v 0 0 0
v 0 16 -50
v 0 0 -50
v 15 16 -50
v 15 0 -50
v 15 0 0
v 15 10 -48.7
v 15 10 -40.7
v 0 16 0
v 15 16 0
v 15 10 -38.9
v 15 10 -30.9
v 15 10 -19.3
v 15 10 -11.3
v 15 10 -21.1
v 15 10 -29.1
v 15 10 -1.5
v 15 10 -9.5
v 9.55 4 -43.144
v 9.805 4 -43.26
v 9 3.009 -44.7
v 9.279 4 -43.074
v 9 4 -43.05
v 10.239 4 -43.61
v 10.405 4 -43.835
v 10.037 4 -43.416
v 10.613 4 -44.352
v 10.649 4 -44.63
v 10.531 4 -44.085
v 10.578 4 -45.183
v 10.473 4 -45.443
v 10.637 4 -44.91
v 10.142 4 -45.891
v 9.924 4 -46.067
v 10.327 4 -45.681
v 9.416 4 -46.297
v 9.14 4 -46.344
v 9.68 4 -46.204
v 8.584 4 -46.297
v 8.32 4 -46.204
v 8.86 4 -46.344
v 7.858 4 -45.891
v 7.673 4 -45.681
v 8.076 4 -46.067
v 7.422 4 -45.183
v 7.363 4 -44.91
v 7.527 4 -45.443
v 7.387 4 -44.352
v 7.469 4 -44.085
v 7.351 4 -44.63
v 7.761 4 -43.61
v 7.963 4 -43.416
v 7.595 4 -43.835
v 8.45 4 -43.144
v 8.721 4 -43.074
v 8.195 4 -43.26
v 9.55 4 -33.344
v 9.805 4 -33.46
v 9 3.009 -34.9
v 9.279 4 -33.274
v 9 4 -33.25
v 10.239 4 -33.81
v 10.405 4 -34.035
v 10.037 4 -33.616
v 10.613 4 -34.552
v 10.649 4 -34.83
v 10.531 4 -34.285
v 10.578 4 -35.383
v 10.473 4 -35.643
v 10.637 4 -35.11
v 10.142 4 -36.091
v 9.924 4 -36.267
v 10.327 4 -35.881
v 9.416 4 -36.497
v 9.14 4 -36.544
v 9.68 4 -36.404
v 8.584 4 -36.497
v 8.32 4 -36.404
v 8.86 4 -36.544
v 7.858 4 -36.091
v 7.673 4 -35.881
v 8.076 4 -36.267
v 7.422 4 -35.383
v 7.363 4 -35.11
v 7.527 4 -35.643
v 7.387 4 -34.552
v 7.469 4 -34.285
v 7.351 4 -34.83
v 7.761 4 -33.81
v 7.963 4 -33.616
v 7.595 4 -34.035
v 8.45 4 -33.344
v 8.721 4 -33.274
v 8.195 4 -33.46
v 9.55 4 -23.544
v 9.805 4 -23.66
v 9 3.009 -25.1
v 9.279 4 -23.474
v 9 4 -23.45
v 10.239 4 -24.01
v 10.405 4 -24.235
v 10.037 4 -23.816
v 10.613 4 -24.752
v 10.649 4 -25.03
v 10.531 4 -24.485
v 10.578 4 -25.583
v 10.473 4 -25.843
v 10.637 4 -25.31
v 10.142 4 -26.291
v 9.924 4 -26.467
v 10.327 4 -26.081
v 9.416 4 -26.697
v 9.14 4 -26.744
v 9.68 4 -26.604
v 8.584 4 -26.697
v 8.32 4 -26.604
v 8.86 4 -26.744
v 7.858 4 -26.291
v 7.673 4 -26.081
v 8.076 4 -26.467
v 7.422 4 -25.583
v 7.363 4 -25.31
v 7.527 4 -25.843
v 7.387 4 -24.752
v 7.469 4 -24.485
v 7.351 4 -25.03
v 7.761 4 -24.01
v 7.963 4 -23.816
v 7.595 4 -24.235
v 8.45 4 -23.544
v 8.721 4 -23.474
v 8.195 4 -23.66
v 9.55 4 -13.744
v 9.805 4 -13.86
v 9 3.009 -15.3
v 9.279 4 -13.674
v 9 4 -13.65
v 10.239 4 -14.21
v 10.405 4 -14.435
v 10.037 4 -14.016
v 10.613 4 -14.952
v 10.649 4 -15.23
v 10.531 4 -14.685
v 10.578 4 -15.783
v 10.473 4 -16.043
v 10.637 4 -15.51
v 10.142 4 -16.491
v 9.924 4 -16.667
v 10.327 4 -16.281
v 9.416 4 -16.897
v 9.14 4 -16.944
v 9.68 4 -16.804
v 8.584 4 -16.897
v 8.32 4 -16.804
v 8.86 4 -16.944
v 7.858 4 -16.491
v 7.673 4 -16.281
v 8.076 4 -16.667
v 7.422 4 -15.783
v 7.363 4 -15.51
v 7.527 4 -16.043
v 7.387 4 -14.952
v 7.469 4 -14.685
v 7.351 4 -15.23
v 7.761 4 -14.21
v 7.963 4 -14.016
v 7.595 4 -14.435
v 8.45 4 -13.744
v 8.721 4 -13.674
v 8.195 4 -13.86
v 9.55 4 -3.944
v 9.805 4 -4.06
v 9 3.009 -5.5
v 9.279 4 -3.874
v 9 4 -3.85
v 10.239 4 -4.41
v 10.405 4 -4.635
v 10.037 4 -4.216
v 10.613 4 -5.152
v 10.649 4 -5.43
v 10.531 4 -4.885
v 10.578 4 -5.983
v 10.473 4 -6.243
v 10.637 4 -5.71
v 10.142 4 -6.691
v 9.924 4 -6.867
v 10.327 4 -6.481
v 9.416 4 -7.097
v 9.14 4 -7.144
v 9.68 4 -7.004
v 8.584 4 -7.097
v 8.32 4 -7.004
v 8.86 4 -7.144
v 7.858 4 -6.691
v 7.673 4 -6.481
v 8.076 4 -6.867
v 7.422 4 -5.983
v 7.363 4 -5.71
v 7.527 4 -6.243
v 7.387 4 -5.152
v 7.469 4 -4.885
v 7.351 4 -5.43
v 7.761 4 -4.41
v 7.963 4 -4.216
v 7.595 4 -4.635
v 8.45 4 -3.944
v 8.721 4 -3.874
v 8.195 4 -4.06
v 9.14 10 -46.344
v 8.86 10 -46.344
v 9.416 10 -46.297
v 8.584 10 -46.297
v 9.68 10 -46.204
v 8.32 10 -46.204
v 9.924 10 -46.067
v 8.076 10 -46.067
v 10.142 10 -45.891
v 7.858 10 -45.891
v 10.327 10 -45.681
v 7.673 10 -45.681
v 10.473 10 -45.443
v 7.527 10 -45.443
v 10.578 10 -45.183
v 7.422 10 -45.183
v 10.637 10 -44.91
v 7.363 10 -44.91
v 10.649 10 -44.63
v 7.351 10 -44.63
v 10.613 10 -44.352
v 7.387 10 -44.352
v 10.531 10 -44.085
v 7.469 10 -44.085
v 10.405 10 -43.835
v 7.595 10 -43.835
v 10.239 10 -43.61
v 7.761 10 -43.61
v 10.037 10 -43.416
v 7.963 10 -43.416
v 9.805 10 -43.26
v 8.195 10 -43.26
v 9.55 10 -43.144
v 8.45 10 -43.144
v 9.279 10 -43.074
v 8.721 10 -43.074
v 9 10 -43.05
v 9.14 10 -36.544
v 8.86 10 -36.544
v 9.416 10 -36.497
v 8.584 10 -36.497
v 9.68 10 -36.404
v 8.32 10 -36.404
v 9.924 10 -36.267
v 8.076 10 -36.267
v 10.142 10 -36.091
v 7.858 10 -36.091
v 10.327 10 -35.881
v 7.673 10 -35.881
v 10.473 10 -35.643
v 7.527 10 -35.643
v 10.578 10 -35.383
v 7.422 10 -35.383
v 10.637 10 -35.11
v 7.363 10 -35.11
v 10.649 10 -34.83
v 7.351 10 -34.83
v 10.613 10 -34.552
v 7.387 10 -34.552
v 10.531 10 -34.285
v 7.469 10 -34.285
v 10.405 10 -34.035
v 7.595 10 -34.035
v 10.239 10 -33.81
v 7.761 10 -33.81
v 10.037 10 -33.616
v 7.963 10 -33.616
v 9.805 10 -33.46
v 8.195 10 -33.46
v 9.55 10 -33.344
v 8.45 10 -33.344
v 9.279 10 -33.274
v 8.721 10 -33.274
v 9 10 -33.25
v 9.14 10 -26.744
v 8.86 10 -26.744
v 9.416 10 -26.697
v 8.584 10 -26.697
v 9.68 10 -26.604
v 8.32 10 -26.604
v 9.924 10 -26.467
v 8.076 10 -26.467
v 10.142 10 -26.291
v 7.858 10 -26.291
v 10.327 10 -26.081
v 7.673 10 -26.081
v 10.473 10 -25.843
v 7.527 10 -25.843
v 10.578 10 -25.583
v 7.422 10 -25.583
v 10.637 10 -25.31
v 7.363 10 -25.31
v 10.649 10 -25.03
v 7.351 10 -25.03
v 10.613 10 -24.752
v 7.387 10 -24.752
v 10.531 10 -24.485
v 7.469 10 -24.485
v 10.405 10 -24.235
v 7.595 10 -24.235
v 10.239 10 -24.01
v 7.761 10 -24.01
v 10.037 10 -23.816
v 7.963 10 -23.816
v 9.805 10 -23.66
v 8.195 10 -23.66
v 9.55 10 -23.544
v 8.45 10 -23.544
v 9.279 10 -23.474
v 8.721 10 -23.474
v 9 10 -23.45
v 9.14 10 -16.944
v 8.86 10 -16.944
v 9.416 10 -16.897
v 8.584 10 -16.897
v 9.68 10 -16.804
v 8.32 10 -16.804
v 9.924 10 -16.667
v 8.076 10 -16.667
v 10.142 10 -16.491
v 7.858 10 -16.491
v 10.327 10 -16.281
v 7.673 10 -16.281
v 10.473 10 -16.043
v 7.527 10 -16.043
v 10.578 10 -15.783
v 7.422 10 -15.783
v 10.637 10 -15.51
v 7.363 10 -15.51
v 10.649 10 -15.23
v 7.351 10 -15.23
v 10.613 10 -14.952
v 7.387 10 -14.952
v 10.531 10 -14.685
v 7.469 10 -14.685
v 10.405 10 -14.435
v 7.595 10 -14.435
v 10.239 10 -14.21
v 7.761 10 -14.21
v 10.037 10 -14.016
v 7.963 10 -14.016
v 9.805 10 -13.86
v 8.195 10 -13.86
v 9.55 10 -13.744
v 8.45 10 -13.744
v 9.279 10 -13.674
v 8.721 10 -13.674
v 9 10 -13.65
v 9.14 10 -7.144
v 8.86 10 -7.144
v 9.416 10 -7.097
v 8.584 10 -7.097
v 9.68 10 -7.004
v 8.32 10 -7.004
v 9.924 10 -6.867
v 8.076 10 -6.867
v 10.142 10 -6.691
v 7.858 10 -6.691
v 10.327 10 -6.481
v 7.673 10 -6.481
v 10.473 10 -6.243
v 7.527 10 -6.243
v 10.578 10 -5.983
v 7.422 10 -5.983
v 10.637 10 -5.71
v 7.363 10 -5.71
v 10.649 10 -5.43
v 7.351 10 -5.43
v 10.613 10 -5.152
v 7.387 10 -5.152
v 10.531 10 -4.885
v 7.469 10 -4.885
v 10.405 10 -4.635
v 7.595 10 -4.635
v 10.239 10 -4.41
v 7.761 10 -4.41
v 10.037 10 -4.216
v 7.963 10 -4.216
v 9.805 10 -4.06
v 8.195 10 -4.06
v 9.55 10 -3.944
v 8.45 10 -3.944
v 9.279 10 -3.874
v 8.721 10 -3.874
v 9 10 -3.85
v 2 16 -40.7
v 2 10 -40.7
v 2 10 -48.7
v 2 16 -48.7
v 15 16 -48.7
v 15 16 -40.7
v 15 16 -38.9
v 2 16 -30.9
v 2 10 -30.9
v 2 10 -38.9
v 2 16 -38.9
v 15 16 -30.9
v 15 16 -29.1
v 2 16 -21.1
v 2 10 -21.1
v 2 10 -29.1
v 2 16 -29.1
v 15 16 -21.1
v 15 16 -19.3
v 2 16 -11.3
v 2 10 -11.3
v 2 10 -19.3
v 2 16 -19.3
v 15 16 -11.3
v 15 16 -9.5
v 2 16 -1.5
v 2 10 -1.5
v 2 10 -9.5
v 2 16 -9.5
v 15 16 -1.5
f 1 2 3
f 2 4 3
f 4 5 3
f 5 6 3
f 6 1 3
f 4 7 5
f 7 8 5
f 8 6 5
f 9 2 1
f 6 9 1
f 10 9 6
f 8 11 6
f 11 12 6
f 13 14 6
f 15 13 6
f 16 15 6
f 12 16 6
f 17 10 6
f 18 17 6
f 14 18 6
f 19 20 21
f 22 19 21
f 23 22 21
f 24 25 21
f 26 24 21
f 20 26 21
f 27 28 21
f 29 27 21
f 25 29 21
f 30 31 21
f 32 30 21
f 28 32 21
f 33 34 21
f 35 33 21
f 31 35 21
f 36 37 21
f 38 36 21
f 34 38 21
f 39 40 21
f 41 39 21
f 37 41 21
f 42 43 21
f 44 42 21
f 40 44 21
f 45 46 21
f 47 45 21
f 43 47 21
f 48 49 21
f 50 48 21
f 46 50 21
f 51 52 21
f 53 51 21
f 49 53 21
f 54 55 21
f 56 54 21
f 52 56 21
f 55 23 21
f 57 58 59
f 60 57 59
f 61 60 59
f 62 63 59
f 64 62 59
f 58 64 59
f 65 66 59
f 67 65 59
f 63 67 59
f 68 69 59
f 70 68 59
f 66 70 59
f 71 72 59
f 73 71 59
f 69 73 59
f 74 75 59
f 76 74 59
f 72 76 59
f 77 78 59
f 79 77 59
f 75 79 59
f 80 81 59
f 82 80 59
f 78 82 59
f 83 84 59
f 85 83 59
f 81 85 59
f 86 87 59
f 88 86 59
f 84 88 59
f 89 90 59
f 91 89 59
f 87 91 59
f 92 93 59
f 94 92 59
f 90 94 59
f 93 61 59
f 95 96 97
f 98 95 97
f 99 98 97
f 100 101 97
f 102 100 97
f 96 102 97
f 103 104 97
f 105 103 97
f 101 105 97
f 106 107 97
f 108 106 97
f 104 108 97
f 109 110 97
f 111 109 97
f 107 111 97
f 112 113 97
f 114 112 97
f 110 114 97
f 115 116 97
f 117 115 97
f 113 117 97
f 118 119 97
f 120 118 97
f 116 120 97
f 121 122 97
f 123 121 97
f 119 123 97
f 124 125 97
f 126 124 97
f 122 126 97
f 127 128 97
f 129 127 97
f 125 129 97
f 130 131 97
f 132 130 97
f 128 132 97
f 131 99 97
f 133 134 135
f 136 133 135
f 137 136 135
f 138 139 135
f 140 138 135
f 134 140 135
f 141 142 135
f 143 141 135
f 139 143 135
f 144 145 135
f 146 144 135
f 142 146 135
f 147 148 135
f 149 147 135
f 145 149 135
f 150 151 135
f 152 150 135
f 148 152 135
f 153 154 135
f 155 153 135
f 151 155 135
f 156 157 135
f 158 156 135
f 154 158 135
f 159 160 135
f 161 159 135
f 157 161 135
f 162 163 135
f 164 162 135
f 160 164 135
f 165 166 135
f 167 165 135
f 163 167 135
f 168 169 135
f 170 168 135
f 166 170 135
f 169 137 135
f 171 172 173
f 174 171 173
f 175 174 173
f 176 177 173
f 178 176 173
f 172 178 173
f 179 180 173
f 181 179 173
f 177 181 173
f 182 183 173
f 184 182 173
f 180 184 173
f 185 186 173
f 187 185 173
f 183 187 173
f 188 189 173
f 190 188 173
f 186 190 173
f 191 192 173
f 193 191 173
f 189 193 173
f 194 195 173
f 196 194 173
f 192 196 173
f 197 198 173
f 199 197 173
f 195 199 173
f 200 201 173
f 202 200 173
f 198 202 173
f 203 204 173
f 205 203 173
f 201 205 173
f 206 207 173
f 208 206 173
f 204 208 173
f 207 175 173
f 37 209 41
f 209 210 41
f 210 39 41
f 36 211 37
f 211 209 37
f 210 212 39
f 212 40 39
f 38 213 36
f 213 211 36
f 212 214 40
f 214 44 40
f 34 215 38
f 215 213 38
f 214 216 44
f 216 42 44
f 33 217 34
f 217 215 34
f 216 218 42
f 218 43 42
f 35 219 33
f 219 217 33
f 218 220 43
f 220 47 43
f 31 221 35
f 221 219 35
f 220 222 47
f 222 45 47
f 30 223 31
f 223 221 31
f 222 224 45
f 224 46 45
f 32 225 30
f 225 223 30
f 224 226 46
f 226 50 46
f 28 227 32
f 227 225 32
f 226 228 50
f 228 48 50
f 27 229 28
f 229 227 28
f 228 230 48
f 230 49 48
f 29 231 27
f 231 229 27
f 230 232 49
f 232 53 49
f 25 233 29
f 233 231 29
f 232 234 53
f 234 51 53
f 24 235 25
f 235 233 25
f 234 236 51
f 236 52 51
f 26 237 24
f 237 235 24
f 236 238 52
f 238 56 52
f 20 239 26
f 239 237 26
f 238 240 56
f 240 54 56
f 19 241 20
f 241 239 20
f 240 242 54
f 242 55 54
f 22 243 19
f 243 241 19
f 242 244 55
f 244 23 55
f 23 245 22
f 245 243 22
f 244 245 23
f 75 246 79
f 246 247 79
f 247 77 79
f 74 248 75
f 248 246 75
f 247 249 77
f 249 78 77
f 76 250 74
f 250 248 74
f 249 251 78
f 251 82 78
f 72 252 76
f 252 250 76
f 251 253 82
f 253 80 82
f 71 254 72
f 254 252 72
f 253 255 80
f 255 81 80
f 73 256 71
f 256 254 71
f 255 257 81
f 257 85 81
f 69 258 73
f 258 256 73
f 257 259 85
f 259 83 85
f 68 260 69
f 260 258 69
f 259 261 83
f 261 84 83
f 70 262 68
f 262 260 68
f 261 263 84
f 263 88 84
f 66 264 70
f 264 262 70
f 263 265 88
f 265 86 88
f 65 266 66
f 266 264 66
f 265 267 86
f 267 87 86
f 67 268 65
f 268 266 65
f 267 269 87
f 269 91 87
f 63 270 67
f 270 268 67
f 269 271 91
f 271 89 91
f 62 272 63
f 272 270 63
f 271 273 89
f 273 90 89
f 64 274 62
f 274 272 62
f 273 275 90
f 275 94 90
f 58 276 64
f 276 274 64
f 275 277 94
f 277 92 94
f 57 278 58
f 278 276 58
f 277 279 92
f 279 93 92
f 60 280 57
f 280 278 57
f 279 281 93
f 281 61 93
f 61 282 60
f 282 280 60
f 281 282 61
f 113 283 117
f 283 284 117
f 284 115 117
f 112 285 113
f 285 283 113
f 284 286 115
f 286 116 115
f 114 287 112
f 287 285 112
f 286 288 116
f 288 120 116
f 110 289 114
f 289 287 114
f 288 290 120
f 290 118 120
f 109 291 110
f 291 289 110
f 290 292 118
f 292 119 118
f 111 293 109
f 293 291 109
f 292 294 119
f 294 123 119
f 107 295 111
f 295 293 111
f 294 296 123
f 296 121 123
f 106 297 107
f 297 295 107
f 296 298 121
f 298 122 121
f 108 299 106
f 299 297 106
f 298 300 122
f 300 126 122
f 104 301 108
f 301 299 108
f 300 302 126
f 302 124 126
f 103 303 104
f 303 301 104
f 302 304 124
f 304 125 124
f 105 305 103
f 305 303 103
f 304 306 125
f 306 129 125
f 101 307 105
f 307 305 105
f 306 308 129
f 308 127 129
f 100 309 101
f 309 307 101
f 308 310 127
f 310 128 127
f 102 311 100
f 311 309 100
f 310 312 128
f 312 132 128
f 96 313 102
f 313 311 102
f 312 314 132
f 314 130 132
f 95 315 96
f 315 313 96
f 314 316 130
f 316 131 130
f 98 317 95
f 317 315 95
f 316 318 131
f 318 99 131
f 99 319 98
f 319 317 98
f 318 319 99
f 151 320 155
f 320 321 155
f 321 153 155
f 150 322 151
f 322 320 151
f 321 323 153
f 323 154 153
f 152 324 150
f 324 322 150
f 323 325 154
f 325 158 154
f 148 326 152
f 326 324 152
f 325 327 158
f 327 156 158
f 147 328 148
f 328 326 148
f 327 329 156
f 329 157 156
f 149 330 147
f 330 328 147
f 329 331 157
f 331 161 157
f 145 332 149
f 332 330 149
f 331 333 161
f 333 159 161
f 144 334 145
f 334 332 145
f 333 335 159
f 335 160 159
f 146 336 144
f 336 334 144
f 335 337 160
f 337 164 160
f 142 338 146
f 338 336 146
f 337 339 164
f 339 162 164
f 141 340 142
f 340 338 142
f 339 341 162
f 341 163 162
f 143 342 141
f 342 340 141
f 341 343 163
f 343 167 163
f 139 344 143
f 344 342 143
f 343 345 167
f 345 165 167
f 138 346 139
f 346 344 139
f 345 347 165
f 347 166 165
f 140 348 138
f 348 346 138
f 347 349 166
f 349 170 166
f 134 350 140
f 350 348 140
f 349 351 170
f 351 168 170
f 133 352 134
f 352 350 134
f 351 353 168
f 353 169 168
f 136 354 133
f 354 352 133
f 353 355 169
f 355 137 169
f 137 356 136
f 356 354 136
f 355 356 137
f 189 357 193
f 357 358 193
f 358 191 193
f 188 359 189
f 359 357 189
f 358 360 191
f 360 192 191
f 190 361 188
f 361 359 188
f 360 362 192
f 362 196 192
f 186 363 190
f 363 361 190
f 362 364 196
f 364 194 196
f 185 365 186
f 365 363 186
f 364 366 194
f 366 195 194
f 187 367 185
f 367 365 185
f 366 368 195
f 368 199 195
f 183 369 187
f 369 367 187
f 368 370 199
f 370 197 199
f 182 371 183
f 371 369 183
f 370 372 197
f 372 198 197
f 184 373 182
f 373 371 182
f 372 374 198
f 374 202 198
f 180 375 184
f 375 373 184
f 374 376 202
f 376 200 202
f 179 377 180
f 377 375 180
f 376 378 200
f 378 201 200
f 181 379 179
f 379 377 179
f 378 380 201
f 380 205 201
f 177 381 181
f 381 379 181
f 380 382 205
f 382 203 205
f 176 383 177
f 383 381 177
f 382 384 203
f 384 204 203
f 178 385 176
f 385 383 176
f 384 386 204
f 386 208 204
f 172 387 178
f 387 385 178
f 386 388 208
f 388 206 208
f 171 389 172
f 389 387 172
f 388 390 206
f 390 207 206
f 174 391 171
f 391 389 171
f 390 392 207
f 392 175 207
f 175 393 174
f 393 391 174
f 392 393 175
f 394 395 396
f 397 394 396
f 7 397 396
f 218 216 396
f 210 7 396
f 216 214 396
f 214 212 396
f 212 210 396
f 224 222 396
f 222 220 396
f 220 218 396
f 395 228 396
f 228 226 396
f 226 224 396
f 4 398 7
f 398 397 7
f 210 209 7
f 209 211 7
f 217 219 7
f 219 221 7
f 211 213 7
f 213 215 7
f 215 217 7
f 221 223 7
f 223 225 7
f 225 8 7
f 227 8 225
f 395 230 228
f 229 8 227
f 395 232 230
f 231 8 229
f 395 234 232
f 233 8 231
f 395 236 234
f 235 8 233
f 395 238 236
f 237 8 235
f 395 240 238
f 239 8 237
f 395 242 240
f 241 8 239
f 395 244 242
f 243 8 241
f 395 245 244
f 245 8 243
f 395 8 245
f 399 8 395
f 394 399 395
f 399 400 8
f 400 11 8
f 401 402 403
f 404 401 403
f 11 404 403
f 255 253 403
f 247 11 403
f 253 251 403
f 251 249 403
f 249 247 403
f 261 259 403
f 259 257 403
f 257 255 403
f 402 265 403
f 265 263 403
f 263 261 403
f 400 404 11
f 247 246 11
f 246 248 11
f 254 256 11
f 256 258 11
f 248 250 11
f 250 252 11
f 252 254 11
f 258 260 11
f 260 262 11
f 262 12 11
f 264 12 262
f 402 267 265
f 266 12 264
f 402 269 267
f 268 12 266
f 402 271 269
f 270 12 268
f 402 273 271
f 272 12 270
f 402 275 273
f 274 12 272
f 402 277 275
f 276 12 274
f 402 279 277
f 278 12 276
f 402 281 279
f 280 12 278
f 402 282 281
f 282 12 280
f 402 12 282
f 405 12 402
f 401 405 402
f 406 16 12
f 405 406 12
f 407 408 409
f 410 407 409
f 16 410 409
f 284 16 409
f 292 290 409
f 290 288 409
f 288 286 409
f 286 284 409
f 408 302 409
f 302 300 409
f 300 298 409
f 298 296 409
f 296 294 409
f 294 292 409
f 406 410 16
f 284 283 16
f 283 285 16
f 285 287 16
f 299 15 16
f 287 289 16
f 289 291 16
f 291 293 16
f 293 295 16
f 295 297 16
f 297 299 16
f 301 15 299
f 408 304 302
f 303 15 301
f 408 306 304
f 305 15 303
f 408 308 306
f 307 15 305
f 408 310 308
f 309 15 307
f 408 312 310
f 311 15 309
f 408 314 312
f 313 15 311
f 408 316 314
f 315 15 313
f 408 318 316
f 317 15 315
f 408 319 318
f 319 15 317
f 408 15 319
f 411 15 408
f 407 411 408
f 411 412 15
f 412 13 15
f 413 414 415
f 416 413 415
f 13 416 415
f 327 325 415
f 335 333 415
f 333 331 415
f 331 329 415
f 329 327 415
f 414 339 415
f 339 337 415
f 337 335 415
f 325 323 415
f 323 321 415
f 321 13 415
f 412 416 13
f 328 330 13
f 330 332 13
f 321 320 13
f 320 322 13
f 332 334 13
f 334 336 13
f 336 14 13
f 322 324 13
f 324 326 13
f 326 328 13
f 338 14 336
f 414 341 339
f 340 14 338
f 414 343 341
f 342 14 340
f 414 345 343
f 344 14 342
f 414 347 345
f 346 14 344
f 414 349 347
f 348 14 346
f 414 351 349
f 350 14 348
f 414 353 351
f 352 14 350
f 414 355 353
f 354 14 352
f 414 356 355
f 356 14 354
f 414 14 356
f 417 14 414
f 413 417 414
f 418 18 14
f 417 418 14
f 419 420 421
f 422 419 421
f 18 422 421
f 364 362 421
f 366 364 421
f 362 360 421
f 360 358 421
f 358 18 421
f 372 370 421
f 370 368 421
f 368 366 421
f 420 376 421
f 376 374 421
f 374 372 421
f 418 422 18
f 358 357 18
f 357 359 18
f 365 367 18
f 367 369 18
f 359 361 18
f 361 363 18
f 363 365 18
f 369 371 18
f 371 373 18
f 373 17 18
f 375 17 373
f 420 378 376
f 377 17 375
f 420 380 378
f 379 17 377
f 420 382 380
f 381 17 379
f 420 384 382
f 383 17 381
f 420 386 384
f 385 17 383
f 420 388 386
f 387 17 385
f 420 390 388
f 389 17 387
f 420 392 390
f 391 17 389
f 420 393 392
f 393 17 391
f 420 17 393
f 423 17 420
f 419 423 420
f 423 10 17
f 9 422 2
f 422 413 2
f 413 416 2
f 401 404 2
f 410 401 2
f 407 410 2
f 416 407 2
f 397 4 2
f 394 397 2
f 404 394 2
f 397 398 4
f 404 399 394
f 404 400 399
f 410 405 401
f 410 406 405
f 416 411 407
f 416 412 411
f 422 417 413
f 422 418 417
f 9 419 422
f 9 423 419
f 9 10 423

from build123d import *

# Parameters (mm, degrees)
SKETCH1_W             = 15
SKETCH1_H             = 50
BOSS_EXTRUDE1_DEPTH   = 16
SKETCH2_W             = 13
SKETCH2_H             = 8
CUT_EXTRUDE1_DEPTH    = 6
M4_TAPPED_HOLE2_D     = 3.3
M4_TAPPED_HOLE2_DEPTH = 6
M4_TAPPED_HOLE2_TIP   = 0.991420021


with BuildPart() as part:
    # Sketch1 → Boss-Extrude1 (new body)
    with BuildSketch(Plane(origin=(0, 0, 0), x_dir=(1, 0, 0), z_dir=(0, 1, 0))):
        with Locations((7.5, 25)):
            Rectangle(SKETCH1_W, SKETCH1_H)
    extrude(amount=BOSS_EXTRUDE1_DEPTH)

    # Sketch2 → Cut-Extrude1 (cut)
    with BuildSketch(Plane(origin=(0, 16, 0), x_dir=(1, 0, 0), z_dir=(0, 1, 0))):
        with Locations((8.5, 5.5)):
            Rectangle(SKETCH2_W, SKETCH2_H)
        with Locations((8.5, 15.3)):
            Rectangle(SKETCH2_W, SKETCH2_H)
        with Locations((8.5, 25.1)):
            Rectangle(SKETCH2_W, SKETCH2_H)
        with Locations((8.5, 34.9)):
            Rectangle(SKETCH2_W, SKETCH2_H)
        with Locations((8.5, 44.7)):
            Rectangle(SKETCH2_W, SKETCH2_H)
    extrude(amount=-CUT_EXTRUDE1_DEPTH, mode=Mode.SUBTRACT)

    # M4 Tapped Hole2
    with Locations(Plane(origin=(0, 10, 0), x_dir=(1, 0, 0), z_dir=(0, 1, 0))):
        with Locations((9, 5.5), (9, 15.3), (9, 25.1), (9, 34.9), (9, 44.7)):
            Hole(M4_TAPPED_HOLE2_D / 2, depth=M4_TAPPED_HOLE2_DEPTH)
            with Locations((0, 0, -(M4_TAPPED_HOLE2_DEPTH + M4_TAPPED_HOLE2_TIP / 2))):  # 118° drill point
                Cone(0, M4_TAPPED_HOLE2_D / 2, M4_TAPPED_HOLE2_TIP, mode=Mode.SUBTRACT)


solid = part.part
